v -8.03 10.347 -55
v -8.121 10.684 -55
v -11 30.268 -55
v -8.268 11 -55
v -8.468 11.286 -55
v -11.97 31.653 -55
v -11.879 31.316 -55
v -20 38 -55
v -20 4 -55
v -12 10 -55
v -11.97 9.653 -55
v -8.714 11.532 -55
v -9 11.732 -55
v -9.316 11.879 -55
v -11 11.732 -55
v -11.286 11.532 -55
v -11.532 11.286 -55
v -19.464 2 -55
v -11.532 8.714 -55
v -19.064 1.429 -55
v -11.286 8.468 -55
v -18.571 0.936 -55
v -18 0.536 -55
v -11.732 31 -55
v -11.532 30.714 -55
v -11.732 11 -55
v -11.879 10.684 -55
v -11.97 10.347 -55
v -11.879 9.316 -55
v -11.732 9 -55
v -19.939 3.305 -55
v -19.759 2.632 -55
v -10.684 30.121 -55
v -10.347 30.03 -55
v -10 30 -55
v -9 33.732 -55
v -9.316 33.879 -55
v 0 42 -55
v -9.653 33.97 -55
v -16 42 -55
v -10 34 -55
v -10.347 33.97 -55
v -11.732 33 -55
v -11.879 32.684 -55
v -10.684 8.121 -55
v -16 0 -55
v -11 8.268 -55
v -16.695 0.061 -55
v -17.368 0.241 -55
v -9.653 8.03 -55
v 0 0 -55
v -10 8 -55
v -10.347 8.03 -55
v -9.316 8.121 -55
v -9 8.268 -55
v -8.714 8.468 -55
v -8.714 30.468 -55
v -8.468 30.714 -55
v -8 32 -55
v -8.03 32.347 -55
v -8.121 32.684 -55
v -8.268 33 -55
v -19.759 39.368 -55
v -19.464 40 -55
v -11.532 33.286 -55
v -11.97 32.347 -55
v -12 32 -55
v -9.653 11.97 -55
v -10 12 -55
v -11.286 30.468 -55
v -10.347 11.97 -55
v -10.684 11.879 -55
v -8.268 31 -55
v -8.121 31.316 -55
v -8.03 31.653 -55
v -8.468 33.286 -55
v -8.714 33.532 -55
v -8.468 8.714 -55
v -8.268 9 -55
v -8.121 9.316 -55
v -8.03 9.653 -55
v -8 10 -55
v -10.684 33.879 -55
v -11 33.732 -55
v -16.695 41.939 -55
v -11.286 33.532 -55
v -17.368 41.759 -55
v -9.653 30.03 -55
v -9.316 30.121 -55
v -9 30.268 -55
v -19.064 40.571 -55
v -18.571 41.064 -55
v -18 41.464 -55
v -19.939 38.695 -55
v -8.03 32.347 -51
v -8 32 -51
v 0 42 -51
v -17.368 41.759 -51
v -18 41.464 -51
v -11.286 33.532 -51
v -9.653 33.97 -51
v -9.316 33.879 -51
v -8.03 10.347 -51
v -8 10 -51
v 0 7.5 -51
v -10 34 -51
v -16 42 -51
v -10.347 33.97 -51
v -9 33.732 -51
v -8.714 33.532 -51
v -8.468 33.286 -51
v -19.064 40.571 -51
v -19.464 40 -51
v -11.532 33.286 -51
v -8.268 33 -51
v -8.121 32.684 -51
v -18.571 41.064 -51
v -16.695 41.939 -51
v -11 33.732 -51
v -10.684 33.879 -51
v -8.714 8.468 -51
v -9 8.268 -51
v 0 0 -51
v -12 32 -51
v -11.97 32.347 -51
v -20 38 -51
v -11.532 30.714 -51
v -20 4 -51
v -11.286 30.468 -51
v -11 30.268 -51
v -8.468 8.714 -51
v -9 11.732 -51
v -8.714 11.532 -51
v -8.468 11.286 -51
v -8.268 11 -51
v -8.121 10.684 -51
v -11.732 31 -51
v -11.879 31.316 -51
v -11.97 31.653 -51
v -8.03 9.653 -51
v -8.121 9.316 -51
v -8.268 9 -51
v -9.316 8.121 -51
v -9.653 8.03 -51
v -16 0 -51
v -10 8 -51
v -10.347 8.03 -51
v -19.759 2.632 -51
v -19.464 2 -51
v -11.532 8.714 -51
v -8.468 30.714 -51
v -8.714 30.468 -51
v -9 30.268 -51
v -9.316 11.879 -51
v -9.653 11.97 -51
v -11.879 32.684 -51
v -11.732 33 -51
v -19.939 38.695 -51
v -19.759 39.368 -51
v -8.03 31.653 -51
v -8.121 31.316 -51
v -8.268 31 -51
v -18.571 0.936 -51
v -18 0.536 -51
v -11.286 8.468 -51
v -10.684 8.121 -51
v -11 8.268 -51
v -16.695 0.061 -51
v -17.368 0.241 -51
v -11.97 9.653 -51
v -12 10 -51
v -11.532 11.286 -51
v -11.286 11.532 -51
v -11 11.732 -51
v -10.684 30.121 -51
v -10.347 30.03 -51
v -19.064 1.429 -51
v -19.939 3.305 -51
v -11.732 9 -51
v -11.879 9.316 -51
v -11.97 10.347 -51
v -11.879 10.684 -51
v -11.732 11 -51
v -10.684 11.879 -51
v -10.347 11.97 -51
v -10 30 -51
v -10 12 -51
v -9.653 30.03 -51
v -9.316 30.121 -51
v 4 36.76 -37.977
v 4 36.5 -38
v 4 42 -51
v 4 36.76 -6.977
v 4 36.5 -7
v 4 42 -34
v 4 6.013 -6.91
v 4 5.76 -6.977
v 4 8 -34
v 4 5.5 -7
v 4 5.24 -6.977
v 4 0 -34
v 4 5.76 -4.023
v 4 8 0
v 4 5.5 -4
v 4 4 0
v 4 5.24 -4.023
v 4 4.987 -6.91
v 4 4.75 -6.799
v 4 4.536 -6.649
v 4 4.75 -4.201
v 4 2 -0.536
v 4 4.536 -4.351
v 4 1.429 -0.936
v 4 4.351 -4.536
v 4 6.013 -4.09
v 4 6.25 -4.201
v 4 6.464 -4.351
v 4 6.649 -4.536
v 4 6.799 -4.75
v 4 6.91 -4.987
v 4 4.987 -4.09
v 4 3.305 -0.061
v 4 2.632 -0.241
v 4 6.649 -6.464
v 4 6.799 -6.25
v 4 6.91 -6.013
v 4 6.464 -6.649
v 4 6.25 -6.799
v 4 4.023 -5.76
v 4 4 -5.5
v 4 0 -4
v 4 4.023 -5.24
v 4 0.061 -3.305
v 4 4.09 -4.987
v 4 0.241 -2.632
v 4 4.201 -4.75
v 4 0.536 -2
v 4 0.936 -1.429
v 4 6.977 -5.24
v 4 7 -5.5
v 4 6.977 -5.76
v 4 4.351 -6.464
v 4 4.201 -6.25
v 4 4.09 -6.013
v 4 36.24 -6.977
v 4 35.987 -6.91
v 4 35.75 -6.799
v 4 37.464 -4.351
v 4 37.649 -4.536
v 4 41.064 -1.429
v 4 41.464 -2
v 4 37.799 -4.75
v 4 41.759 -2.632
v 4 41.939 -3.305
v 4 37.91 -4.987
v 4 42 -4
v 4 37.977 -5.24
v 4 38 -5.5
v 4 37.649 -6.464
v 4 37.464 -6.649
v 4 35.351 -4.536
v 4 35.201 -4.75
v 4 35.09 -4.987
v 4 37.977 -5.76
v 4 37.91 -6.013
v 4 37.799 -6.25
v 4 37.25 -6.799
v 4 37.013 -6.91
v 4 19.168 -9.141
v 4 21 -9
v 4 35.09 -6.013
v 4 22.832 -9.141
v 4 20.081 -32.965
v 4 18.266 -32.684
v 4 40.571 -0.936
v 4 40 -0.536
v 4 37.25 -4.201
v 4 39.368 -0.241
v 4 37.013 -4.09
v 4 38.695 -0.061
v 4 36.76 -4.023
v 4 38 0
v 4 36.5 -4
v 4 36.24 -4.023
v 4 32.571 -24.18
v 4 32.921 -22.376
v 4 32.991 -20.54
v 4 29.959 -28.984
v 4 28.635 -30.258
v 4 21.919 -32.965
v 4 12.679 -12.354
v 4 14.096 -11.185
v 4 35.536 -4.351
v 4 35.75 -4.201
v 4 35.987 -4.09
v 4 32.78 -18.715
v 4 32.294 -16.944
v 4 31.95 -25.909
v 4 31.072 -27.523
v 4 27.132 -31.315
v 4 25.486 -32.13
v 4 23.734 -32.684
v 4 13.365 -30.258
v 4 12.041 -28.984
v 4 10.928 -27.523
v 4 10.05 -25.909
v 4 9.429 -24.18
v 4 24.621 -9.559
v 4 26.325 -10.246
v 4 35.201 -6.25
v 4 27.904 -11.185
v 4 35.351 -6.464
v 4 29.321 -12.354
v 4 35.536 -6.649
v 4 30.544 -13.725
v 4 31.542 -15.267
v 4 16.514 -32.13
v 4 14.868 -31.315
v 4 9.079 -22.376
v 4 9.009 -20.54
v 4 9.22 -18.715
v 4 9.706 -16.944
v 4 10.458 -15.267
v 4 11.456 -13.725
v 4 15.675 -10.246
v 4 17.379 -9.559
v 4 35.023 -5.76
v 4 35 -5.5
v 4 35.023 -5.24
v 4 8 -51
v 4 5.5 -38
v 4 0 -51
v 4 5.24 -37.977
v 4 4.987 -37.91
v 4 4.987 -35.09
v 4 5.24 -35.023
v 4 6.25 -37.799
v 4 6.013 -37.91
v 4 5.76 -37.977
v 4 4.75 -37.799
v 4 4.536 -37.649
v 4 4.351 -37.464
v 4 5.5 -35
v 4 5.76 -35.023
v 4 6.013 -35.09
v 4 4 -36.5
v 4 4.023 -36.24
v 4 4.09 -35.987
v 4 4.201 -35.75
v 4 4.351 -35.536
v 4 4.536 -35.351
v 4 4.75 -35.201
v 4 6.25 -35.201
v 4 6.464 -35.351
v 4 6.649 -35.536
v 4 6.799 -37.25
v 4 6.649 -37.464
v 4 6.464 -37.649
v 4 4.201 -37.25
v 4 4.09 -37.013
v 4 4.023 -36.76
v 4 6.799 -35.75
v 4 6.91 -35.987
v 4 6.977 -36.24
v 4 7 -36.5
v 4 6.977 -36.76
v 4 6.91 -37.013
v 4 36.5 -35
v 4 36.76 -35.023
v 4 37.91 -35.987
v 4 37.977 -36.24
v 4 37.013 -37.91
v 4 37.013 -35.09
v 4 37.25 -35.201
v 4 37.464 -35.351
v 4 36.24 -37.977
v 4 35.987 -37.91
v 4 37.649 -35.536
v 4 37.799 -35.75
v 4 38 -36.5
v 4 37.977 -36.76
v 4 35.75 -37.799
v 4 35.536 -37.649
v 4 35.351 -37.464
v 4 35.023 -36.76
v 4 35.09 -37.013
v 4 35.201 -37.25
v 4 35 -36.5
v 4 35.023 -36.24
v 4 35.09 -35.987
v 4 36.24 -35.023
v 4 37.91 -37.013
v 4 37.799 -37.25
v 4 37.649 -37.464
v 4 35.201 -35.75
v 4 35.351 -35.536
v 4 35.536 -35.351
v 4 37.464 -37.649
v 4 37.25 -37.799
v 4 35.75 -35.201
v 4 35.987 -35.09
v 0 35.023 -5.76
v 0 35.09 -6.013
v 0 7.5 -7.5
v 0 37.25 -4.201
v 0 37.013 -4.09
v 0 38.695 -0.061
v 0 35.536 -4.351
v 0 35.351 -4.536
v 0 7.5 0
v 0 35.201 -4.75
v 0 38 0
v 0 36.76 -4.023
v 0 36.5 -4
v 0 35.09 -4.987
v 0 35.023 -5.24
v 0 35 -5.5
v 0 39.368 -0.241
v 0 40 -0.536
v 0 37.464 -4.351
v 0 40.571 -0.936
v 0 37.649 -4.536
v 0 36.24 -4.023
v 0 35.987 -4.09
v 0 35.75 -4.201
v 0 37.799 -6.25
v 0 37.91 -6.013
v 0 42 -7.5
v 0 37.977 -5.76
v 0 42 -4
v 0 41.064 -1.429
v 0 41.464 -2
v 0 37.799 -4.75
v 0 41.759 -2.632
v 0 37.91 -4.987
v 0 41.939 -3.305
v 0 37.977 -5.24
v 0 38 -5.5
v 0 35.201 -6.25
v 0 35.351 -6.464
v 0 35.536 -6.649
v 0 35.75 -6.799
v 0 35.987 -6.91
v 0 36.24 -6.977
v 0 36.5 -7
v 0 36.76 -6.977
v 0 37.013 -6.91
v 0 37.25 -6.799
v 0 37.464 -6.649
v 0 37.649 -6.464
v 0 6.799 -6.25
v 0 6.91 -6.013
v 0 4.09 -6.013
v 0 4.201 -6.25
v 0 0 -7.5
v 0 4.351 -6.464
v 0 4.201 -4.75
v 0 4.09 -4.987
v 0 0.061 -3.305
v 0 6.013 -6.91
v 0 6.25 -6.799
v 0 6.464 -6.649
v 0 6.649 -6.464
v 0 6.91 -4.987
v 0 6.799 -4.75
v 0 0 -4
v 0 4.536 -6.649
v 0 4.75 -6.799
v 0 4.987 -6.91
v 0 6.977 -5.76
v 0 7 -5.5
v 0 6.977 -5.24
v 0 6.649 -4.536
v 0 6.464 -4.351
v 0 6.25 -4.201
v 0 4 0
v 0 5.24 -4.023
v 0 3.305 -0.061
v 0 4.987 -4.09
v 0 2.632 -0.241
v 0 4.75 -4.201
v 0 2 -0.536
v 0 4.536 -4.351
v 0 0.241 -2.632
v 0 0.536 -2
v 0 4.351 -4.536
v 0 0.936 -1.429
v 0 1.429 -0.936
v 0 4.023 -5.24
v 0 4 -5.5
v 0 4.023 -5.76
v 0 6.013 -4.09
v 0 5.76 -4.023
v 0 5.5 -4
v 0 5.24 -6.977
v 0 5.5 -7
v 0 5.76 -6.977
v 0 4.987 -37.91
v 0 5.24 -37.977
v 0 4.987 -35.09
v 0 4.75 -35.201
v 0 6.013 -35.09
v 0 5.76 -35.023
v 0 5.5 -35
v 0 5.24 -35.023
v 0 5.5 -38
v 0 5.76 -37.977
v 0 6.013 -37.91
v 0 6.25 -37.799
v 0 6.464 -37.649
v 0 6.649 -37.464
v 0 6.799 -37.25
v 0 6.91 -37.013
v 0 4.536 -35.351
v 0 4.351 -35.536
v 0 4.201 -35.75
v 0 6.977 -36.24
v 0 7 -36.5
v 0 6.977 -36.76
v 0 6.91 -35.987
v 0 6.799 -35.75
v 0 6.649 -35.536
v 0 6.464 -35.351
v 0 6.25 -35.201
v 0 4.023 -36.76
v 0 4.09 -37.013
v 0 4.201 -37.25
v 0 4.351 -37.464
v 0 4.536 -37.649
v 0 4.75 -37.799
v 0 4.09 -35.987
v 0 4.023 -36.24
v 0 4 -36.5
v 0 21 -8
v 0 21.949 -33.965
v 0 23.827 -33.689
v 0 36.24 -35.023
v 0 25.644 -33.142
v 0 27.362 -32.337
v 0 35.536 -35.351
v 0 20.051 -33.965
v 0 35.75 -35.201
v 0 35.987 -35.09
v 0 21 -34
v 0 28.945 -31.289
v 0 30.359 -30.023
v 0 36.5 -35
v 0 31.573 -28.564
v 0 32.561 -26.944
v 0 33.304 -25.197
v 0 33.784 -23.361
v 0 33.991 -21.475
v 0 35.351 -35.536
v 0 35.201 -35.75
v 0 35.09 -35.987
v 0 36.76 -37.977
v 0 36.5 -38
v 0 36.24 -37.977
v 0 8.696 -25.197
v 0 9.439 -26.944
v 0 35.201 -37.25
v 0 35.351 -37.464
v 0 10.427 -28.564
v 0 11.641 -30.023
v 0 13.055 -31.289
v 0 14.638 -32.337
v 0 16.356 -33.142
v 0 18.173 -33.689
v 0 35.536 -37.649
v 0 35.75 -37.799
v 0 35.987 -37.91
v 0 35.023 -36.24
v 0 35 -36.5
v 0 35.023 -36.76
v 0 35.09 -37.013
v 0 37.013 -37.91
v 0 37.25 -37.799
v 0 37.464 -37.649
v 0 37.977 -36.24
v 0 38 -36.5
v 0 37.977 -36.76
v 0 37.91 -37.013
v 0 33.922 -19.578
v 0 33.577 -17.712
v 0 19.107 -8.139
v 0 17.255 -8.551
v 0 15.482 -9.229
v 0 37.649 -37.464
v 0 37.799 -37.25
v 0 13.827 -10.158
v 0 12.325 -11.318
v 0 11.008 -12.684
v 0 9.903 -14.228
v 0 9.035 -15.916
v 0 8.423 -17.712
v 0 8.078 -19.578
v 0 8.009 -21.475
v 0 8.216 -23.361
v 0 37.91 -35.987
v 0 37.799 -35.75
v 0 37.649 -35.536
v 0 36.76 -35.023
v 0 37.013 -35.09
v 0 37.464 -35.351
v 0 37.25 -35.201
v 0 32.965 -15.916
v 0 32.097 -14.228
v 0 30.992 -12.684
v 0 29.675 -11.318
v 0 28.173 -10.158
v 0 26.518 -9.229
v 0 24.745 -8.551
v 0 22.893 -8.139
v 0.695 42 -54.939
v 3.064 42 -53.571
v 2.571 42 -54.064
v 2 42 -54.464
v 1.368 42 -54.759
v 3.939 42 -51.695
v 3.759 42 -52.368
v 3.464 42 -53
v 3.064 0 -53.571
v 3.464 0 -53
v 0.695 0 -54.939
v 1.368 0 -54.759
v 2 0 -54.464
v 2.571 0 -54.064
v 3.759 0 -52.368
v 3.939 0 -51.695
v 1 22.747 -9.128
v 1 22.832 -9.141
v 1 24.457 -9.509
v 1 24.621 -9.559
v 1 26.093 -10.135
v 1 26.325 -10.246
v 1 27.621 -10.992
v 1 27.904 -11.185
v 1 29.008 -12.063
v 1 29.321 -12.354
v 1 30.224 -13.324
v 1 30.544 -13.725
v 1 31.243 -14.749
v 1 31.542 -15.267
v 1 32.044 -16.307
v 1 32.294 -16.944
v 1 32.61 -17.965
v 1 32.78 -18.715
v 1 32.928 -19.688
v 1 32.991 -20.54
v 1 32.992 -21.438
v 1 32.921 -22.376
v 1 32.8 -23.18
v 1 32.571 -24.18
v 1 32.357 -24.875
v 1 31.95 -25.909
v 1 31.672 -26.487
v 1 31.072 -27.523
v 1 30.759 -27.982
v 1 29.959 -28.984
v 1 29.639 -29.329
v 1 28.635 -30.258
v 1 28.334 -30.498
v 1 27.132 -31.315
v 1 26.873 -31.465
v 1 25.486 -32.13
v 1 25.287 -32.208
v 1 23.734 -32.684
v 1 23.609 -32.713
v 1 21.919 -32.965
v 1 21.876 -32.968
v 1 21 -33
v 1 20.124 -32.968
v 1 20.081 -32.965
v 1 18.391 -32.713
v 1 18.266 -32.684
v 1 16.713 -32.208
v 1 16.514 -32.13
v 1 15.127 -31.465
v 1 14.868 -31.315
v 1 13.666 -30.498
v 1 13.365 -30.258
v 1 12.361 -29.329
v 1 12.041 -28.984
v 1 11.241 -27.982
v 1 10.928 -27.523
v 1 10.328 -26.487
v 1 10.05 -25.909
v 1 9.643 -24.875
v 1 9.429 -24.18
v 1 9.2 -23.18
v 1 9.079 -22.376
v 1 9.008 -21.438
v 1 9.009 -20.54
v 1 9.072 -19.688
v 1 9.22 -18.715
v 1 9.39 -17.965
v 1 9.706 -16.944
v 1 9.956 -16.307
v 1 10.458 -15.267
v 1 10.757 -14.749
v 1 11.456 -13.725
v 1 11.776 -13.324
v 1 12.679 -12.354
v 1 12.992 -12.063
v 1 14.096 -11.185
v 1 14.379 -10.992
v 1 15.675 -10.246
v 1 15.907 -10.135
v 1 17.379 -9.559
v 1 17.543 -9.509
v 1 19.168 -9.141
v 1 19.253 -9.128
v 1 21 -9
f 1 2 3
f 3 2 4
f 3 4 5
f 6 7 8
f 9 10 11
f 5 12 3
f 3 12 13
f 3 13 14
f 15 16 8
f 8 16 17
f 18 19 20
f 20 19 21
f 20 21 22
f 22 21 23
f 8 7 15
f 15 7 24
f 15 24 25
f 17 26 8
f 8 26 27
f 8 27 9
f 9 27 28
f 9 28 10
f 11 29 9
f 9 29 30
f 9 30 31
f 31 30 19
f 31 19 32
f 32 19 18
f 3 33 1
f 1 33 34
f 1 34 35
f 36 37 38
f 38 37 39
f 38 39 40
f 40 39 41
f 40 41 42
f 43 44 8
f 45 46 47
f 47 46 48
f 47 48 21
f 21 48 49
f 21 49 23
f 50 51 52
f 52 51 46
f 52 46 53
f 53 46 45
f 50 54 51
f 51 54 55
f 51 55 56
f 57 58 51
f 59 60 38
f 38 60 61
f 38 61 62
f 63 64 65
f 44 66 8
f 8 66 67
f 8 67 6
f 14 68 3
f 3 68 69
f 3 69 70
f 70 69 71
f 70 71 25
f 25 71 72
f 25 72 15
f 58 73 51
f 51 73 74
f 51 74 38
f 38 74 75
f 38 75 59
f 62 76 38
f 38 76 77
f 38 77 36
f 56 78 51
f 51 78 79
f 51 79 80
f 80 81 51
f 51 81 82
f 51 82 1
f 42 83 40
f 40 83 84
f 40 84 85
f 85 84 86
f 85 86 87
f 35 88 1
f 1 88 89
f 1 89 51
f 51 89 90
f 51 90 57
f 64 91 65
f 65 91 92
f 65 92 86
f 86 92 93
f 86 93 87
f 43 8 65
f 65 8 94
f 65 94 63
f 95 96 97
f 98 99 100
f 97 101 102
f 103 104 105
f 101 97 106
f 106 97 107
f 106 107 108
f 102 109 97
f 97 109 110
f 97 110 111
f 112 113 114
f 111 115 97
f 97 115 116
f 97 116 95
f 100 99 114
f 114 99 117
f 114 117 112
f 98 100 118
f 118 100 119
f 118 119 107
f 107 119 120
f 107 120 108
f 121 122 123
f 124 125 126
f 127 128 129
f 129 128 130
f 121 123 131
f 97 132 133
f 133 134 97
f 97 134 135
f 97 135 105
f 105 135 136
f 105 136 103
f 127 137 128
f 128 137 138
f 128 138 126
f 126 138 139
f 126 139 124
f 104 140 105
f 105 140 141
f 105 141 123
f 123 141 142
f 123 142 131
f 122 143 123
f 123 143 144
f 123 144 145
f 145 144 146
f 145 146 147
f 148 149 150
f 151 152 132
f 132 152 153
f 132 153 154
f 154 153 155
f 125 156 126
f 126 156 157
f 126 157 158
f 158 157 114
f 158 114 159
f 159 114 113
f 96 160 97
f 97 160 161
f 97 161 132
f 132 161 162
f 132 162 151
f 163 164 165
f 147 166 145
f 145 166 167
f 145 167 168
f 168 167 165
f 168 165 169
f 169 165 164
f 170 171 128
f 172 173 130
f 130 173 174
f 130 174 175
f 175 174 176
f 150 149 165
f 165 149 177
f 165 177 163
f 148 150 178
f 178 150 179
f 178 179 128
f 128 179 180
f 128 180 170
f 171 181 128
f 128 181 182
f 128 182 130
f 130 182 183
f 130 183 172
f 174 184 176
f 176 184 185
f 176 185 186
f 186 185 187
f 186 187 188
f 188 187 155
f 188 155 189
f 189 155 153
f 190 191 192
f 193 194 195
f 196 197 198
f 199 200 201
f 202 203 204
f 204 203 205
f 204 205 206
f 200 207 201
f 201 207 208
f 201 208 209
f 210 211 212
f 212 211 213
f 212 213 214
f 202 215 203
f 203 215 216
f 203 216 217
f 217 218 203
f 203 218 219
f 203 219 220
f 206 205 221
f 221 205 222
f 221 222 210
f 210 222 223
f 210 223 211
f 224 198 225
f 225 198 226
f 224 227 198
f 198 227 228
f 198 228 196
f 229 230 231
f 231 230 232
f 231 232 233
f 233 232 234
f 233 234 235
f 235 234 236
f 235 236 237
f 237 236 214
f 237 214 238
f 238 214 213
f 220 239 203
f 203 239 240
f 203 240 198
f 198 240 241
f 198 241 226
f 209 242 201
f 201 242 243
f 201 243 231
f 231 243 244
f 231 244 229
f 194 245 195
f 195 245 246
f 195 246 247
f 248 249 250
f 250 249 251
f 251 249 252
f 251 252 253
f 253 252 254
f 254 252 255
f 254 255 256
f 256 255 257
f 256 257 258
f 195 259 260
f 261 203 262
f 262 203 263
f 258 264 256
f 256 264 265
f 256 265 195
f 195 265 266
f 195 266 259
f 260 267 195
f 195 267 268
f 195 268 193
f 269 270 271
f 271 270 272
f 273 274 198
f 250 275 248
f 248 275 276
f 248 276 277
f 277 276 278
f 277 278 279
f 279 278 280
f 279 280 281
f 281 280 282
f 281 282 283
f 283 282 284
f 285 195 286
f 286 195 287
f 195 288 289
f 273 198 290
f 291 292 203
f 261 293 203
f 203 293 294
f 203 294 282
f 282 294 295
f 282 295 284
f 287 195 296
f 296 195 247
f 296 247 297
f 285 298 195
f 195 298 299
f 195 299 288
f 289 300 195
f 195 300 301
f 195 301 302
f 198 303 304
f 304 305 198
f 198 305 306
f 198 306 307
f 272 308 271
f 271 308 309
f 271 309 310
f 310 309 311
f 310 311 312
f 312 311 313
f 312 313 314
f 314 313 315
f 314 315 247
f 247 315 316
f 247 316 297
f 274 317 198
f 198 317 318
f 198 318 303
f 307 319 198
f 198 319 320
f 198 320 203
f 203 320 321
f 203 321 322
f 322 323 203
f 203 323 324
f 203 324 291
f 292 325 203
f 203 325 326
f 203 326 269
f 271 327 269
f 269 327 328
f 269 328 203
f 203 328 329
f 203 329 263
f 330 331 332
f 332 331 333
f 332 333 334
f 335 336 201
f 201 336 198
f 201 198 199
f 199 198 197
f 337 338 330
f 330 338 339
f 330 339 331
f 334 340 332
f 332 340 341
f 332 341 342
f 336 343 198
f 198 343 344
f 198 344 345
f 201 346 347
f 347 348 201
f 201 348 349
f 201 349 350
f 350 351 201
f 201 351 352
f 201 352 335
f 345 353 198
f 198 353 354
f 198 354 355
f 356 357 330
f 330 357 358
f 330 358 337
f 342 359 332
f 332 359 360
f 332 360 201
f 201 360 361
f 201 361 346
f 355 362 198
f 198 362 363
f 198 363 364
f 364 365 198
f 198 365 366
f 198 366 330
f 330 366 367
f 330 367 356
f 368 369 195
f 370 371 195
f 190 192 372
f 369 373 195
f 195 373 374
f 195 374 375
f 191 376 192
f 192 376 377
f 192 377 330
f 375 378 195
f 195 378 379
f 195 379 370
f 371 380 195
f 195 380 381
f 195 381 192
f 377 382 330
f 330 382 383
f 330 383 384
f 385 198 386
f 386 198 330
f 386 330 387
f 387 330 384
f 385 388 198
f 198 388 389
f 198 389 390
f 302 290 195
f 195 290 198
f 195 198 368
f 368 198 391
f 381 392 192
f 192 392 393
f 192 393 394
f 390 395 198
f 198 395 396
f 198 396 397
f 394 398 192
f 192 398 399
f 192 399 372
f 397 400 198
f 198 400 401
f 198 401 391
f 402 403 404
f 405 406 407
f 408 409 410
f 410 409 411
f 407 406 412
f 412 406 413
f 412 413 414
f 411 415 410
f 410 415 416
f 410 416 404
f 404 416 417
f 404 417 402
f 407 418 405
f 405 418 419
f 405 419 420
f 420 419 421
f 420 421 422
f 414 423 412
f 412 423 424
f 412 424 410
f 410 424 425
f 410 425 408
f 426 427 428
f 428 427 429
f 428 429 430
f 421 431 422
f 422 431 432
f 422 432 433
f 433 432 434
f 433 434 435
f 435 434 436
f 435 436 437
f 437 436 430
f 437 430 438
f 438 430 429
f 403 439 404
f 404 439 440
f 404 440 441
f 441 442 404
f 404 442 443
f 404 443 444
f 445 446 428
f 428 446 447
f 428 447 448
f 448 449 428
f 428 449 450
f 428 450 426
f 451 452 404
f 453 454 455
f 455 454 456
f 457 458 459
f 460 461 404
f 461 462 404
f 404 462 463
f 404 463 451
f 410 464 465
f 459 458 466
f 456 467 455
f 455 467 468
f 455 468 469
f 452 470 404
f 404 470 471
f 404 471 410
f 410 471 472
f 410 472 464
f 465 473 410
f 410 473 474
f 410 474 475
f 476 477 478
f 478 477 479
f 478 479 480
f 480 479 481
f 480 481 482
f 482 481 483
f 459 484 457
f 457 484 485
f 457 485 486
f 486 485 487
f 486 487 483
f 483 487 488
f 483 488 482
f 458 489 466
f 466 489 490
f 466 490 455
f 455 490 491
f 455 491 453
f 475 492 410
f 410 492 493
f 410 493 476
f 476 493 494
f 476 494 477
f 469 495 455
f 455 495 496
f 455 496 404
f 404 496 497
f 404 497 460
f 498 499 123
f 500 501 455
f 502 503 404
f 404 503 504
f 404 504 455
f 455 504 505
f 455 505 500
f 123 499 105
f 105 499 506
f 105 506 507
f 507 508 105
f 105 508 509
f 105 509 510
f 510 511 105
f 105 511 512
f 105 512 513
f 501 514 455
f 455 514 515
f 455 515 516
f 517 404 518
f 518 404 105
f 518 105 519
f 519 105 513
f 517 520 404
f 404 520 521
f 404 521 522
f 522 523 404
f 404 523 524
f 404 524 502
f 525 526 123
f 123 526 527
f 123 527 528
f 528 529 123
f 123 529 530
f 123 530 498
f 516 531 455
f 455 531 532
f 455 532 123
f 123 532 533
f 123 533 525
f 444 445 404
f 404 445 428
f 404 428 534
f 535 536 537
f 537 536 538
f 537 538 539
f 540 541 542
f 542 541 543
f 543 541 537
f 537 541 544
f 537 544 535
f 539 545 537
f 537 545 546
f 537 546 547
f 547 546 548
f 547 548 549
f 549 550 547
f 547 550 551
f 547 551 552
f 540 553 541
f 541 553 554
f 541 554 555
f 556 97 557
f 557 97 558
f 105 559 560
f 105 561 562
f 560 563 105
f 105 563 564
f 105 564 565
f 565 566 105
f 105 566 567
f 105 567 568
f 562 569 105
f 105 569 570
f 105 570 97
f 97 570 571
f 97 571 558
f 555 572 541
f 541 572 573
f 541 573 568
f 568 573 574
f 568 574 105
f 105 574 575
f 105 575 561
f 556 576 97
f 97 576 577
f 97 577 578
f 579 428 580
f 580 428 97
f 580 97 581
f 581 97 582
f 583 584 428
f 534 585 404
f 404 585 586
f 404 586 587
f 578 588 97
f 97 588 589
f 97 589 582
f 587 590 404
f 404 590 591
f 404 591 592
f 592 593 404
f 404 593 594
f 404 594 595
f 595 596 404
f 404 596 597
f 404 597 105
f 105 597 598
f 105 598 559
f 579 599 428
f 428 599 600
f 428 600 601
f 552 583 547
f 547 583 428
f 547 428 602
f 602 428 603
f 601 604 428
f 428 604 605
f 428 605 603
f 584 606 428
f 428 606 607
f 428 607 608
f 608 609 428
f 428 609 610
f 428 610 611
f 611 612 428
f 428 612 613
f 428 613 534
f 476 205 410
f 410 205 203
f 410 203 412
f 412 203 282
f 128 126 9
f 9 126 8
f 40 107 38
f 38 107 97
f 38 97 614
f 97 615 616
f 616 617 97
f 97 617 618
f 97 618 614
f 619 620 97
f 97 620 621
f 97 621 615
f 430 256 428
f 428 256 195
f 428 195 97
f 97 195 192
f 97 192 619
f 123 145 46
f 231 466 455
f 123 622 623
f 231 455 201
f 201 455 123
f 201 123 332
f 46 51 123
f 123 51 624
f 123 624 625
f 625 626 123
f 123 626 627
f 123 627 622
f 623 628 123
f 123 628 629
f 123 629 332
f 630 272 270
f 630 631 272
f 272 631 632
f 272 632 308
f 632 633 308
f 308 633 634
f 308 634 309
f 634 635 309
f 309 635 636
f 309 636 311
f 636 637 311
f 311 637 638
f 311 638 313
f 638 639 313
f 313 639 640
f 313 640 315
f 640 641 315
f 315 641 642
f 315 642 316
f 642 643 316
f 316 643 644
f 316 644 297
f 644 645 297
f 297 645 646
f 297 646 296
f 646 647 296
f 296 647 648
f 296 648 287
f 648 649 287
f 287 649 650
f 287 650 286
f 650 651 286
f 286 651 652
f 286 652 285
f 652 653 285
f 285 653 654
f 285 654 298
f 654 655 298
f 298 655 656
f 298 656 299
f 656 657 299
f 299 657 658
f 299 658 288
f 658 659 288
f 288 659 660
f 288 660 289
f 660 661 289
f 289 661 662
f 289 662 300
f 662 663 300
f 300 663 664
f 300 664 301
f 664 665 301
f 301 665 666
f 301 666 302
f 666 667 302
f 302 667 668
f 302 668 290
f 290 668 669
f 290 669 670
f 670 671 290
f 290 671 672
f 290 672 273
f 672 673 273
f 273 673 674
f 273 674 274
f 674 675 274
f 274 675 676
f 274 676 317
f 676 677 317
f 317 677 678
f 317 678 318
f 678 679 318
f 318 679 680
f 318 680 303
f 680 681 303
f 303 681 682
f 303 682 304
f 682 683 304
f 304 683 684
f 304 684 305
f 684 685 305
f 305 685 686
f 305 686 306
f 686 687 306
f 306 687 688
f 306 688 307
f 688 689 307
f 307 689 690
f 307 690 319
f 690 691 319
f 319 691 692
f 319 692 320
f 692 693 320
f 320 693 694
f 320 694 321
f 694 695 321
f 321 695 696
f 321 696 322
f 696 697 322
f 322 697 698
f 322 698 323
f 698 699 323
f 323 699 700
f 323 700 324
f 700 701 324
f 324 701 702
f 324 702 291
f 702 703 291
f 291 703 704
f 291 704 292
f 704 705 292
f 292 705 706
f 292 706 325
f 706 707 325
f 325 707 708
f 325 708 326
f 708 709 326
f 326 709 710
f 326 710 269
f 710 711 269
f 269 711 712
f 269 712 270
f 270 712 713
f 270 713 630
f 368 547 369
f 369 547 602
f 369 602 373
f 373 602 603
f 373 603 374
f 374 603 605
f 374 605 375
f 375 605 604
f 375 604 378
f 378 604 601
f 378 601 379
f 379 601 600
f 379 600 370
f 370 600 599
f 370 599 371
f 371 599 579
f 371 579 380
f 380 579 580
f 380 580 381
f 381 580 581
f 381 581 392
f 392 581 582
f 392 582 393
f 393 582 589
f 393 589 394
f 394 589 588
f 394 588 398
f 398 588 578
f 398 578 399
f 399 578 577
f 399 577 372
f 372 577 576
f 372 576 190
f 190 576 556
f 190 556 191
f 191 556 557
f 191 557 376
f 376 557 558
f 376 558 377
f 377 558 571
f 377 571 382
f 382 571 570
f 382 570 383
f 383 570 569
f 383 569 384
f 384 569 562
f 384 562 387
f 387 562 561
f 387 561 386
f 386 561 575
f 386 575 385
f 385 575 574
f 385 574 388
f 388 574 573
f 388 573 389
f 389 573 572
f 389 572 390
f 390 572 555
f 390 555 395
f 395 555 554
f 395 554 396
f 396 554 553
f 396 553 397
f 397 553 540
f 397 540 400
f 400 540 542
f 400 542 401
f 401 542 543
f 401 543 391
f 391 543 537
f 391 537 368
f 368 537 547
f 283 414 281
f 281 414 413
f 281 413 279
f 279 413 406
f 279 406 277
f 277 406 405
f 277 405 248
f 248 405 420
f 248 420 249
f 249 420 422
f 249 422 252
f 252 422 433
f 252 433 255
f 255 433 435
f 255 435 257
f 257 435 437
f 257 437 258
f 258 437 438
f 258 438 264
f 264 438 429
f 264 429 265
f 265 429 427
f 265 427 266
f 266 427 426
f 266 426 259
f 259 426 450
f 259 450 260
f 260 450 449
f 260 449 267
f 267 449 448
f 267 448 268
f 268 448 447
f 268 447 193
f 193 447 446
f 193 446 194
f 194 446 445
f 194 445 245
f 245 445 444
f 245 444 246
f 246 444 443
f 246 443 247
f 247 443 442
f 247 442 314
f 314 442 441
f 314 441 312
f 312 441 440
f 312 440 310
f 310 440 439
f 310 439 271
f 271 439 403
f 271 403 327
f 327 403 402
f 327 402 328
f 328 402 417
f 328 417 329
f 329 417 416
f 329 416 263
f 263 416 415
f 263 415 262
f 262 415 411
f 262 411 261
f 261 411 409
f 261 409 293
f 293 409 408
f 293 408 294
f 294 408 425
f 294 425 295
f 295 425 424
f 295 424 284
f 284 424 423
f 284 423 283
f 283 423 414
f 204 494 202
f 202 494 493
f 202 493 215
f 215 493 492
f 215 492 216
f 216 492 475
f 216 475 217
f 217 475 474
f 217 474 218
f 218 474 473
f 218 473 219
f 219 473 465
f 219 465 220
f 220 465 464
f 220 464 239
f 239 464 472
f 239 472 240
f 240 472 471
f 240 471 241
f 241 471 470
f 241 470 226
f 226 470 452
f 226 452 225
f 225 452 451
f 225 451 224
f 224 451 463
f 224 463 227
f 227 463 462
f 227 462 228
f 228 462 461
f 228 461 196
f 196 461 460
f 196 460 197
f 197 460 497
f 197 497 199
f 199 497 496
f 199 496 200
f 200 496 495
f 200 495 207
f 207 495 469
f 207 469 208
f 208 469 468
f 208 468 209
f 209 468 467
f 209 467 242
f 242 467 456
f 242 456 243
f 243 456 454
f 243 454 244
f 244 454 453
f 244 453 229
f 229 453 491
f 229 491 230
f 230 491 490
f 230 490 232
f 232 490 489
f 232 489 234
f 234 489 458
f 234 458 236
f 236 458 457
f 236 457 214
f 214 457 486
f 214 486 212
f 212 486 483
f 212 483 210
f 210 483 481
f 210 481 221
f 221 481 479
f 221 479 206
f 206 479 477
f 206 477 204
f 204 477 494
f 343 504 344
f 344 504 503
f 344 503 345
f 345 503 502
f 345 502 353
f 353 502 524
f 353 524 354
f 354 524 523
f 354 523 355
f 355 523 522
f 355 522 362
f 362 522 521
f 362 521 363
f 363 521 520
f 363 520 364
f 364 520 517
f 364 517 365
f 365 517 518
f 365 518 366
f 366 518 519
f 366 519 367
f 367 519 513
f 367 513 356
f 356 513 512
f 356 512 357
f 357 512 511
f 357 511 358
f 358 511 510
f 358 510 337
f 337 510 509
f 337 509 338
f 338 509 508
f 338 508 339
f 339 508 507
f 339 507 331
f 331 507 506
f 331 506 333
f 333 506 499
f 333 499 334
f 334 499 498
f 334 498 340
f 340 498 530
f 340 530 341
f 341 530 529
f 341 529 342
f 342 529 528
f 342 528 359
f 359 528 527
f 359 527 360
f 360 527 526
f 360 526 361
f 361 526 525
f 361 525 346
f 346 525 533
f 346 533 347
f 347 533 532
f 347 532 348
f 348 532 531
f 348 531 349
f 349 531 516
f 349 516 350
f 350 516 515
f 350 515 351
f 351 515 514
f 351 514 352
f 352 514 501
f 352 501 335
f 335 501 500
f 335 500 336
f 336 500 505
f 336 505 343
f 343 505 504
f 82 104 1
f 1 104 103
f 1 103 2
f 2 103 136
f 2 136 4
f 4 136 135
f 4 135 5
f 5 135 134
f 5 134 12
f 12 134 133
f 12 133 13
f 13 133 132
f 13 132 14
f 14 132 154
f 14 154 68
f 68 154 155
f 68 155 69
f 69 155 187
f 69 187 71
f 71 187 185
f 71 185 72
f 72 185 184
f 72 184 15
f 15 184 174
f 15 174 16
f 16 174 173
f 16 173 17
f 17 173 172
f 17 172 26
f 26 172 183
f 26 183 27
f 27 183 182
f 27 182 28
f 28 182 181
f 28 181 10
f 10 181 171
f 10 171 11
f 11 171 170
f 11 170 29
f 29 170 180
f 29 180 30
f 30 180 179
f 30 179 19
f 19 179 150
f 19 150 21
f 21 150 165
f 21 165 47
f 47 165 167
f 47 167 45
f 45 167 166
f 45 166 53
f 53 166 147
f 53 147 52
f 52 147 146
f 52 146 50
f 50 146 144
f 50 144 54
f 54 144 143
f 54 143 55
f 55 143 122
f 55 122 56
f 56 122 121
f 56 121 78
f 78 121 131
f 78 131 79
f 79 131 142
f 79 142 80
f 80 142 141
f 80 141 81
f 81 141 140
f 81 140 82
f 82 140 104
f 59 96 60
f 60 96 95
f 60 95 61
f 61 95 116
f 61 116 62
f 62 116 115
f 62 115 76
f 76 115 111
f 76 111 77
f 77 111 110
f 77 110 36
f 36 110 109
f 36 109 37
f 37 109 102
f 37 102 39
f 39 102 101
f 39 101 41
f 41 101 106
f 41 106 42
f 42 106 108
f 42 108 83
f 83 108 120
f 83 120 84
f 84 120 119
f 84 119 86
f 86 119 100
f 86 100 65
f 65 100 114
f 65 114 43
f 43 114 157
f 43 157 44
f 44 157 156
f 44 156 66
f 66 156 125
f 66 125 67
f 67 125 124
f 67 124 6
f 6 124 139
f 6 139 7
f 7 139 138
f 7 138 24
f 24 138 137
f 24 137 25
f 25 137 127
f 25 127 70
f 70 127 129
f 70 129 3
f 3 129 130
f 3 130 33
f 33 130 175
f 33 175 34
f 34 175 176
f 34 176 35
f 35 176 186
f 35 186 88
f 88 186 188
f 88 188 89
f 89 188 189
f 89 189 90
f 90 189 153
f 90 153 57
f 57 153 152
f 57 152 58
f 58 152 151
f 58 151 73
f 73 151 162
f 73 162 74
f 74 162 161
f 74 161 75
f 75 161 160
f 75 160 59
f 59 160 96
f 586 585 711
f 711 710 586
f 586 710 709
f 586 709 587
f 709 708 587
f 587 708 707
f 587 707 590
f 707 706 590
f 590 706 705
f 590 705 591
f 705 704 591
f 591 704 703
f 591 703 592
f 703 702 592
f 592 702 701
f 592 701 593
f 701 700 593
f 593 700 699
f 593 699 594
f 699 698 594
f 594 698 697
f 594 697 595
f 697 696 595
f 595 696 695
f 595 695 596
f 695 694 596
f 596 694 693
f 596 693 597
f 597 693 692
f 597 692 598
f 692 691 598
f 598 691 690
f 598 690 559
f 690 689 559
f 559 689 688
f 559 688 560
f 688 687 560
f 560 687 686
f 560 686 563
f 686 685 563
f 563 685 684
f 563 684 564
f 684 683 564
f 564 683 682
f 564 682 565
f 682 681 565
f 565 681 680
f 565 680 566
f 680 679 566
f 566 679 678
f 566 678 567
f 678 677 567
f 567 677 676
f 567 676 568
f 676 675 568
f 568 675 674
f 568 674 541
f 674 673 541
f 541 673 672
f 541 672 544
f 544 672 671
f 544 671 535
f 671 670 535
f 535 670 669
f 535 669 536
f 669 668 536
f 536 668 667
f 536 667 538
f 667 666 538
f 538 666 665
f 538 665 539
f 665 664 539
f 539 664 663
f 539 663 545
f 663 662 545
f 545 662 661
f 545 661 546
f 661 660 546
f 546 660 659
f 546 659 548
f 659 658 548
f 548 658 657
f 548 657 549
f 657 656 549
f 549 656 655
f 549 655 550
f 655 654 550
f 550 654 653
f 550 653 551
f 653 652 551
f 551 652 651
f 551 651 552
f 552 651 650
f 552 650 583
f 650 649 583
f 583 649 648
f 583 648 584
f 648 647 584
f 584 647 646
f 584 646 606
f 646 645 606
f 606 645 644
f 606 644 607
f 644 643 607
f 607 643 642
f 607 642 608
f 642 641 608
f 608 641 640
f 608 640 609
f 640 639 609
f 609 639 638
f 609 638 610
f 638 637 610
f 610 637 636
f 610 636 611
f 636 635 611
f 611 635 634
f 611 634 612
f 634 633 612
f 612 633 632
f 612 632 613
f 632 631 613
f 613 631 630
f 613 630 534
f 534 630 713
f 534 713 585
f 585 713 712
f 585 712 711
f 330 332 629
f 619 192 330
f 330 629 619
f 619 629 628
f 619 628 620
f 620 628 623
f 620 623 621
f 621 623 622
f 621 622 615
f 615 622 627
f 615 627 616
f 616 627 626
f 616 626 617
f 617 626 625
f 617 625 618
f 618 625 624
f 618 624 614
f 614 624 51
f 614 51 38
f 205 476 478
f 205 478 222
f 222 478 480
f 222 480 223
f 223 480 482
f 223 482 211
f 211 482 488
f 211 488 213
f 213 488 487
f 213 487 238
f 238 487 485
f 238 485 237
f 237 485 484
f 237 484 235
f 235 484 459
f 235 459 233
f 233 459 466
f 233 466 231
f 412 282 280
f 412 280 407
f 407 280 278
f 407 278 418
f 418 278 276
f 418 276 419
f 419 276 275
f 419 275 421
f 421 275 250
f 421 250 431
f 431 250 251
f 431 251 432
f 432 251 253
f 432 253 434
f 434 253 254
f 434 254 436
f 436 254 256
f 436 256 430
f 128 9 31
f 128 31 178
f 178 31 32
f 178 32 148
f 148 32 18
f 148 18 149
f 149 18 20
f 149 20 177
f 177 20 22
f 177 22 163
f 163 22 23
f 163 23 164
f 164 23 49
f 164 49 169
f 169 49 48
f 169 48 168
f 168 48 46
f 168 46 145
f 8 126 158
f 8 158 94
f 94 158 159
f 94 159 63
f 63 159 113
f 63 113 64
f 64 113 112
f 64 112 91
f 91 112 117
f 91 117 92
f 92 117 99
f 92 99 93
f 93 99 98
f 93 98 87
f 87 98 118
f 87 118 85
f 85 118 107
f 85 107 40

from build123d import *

# Parameters (mm, degrees)
BOSS_EXTRUDE1_DEPTH = 42
SKETCH2_R           = 12
SKETCH2_R_2         = 1.5
CUT_EXTRUDE1_DEPTH  = 5
SKETCH3_R           = 2
CUT_EXTRUDE2_DEPTH  = 5
CHAMFER2_SIZE       = 1
FILLET1_R           = 4


with BuildPart() as part:
    # Sketch1 → Boss-Extrude1 (new body)
    with BuildSketch(Plane(origin=(0, 0, 0), x_dir=(1, 0, 0), z_dir=(0, 1, 0))):
        Polygon((0, 0), (0, 51), (-20, 51), (-20, 55), (4, 55), (4, 0), align=None)
    extrude(amount=BOSS_EXTRUDE1_DEPTH)

    # Sketch2 → Cut-Extrude1 (cut, through all)
    with BuildSketch(Plane.ZY):
        with Locations((-21, 21)):
            Circle(SKETCH2_R)
        with Locations((-36.5, 36.5)):
            Circle(SKETCH2_R_2)
        with Locations((-5.5, 36.5)):
            Circle(SKETCH2_R_2)
        with Locations((-5.5, 5.5)):
            Circle(SKETCH2_R_2)
        with Locations((-36.5, 5.5)):
            Circle(SKETCH2_R_2)
    extrude(amount=-CUT_EXTRUDE1_DEPTH, mode=Mode.SUBTRACT)

    # Sketch3 → Cut-Extrude2 (cut, through all)
    with BuildSketch(Plane.XY.offset(-51)):
        with Locations((-10, 32)):
            Circle(SKETCH3_R)
        with Locations((-10, 10)):
            Circle(SKETCH3_R)
    extrude(amount=-CUT_EXTRUDE2_DEPTH, mode=Mode.SUBTRACT)

    # Chamfer2
    chamfer2_edges = [part.edges().sort_by_distance(p)[0] for p in [
        (0, 21, -33),
    ]]
    chamfer(chamfer2_edges, length=CHAMFER2_SIZE)

    # Fillet1
    fillet1_edges = [part.edges().sort_by_distance(p)[0] for p in [
        (4, 21, -55),
        (-20, 42, -53),
        (2, 42, 0),
        (-20, 0, -53),
        (2, 0, 0),
    ]]
    fillet(fillet1_edges, radius=FILLET1_R)


solid = part.part
